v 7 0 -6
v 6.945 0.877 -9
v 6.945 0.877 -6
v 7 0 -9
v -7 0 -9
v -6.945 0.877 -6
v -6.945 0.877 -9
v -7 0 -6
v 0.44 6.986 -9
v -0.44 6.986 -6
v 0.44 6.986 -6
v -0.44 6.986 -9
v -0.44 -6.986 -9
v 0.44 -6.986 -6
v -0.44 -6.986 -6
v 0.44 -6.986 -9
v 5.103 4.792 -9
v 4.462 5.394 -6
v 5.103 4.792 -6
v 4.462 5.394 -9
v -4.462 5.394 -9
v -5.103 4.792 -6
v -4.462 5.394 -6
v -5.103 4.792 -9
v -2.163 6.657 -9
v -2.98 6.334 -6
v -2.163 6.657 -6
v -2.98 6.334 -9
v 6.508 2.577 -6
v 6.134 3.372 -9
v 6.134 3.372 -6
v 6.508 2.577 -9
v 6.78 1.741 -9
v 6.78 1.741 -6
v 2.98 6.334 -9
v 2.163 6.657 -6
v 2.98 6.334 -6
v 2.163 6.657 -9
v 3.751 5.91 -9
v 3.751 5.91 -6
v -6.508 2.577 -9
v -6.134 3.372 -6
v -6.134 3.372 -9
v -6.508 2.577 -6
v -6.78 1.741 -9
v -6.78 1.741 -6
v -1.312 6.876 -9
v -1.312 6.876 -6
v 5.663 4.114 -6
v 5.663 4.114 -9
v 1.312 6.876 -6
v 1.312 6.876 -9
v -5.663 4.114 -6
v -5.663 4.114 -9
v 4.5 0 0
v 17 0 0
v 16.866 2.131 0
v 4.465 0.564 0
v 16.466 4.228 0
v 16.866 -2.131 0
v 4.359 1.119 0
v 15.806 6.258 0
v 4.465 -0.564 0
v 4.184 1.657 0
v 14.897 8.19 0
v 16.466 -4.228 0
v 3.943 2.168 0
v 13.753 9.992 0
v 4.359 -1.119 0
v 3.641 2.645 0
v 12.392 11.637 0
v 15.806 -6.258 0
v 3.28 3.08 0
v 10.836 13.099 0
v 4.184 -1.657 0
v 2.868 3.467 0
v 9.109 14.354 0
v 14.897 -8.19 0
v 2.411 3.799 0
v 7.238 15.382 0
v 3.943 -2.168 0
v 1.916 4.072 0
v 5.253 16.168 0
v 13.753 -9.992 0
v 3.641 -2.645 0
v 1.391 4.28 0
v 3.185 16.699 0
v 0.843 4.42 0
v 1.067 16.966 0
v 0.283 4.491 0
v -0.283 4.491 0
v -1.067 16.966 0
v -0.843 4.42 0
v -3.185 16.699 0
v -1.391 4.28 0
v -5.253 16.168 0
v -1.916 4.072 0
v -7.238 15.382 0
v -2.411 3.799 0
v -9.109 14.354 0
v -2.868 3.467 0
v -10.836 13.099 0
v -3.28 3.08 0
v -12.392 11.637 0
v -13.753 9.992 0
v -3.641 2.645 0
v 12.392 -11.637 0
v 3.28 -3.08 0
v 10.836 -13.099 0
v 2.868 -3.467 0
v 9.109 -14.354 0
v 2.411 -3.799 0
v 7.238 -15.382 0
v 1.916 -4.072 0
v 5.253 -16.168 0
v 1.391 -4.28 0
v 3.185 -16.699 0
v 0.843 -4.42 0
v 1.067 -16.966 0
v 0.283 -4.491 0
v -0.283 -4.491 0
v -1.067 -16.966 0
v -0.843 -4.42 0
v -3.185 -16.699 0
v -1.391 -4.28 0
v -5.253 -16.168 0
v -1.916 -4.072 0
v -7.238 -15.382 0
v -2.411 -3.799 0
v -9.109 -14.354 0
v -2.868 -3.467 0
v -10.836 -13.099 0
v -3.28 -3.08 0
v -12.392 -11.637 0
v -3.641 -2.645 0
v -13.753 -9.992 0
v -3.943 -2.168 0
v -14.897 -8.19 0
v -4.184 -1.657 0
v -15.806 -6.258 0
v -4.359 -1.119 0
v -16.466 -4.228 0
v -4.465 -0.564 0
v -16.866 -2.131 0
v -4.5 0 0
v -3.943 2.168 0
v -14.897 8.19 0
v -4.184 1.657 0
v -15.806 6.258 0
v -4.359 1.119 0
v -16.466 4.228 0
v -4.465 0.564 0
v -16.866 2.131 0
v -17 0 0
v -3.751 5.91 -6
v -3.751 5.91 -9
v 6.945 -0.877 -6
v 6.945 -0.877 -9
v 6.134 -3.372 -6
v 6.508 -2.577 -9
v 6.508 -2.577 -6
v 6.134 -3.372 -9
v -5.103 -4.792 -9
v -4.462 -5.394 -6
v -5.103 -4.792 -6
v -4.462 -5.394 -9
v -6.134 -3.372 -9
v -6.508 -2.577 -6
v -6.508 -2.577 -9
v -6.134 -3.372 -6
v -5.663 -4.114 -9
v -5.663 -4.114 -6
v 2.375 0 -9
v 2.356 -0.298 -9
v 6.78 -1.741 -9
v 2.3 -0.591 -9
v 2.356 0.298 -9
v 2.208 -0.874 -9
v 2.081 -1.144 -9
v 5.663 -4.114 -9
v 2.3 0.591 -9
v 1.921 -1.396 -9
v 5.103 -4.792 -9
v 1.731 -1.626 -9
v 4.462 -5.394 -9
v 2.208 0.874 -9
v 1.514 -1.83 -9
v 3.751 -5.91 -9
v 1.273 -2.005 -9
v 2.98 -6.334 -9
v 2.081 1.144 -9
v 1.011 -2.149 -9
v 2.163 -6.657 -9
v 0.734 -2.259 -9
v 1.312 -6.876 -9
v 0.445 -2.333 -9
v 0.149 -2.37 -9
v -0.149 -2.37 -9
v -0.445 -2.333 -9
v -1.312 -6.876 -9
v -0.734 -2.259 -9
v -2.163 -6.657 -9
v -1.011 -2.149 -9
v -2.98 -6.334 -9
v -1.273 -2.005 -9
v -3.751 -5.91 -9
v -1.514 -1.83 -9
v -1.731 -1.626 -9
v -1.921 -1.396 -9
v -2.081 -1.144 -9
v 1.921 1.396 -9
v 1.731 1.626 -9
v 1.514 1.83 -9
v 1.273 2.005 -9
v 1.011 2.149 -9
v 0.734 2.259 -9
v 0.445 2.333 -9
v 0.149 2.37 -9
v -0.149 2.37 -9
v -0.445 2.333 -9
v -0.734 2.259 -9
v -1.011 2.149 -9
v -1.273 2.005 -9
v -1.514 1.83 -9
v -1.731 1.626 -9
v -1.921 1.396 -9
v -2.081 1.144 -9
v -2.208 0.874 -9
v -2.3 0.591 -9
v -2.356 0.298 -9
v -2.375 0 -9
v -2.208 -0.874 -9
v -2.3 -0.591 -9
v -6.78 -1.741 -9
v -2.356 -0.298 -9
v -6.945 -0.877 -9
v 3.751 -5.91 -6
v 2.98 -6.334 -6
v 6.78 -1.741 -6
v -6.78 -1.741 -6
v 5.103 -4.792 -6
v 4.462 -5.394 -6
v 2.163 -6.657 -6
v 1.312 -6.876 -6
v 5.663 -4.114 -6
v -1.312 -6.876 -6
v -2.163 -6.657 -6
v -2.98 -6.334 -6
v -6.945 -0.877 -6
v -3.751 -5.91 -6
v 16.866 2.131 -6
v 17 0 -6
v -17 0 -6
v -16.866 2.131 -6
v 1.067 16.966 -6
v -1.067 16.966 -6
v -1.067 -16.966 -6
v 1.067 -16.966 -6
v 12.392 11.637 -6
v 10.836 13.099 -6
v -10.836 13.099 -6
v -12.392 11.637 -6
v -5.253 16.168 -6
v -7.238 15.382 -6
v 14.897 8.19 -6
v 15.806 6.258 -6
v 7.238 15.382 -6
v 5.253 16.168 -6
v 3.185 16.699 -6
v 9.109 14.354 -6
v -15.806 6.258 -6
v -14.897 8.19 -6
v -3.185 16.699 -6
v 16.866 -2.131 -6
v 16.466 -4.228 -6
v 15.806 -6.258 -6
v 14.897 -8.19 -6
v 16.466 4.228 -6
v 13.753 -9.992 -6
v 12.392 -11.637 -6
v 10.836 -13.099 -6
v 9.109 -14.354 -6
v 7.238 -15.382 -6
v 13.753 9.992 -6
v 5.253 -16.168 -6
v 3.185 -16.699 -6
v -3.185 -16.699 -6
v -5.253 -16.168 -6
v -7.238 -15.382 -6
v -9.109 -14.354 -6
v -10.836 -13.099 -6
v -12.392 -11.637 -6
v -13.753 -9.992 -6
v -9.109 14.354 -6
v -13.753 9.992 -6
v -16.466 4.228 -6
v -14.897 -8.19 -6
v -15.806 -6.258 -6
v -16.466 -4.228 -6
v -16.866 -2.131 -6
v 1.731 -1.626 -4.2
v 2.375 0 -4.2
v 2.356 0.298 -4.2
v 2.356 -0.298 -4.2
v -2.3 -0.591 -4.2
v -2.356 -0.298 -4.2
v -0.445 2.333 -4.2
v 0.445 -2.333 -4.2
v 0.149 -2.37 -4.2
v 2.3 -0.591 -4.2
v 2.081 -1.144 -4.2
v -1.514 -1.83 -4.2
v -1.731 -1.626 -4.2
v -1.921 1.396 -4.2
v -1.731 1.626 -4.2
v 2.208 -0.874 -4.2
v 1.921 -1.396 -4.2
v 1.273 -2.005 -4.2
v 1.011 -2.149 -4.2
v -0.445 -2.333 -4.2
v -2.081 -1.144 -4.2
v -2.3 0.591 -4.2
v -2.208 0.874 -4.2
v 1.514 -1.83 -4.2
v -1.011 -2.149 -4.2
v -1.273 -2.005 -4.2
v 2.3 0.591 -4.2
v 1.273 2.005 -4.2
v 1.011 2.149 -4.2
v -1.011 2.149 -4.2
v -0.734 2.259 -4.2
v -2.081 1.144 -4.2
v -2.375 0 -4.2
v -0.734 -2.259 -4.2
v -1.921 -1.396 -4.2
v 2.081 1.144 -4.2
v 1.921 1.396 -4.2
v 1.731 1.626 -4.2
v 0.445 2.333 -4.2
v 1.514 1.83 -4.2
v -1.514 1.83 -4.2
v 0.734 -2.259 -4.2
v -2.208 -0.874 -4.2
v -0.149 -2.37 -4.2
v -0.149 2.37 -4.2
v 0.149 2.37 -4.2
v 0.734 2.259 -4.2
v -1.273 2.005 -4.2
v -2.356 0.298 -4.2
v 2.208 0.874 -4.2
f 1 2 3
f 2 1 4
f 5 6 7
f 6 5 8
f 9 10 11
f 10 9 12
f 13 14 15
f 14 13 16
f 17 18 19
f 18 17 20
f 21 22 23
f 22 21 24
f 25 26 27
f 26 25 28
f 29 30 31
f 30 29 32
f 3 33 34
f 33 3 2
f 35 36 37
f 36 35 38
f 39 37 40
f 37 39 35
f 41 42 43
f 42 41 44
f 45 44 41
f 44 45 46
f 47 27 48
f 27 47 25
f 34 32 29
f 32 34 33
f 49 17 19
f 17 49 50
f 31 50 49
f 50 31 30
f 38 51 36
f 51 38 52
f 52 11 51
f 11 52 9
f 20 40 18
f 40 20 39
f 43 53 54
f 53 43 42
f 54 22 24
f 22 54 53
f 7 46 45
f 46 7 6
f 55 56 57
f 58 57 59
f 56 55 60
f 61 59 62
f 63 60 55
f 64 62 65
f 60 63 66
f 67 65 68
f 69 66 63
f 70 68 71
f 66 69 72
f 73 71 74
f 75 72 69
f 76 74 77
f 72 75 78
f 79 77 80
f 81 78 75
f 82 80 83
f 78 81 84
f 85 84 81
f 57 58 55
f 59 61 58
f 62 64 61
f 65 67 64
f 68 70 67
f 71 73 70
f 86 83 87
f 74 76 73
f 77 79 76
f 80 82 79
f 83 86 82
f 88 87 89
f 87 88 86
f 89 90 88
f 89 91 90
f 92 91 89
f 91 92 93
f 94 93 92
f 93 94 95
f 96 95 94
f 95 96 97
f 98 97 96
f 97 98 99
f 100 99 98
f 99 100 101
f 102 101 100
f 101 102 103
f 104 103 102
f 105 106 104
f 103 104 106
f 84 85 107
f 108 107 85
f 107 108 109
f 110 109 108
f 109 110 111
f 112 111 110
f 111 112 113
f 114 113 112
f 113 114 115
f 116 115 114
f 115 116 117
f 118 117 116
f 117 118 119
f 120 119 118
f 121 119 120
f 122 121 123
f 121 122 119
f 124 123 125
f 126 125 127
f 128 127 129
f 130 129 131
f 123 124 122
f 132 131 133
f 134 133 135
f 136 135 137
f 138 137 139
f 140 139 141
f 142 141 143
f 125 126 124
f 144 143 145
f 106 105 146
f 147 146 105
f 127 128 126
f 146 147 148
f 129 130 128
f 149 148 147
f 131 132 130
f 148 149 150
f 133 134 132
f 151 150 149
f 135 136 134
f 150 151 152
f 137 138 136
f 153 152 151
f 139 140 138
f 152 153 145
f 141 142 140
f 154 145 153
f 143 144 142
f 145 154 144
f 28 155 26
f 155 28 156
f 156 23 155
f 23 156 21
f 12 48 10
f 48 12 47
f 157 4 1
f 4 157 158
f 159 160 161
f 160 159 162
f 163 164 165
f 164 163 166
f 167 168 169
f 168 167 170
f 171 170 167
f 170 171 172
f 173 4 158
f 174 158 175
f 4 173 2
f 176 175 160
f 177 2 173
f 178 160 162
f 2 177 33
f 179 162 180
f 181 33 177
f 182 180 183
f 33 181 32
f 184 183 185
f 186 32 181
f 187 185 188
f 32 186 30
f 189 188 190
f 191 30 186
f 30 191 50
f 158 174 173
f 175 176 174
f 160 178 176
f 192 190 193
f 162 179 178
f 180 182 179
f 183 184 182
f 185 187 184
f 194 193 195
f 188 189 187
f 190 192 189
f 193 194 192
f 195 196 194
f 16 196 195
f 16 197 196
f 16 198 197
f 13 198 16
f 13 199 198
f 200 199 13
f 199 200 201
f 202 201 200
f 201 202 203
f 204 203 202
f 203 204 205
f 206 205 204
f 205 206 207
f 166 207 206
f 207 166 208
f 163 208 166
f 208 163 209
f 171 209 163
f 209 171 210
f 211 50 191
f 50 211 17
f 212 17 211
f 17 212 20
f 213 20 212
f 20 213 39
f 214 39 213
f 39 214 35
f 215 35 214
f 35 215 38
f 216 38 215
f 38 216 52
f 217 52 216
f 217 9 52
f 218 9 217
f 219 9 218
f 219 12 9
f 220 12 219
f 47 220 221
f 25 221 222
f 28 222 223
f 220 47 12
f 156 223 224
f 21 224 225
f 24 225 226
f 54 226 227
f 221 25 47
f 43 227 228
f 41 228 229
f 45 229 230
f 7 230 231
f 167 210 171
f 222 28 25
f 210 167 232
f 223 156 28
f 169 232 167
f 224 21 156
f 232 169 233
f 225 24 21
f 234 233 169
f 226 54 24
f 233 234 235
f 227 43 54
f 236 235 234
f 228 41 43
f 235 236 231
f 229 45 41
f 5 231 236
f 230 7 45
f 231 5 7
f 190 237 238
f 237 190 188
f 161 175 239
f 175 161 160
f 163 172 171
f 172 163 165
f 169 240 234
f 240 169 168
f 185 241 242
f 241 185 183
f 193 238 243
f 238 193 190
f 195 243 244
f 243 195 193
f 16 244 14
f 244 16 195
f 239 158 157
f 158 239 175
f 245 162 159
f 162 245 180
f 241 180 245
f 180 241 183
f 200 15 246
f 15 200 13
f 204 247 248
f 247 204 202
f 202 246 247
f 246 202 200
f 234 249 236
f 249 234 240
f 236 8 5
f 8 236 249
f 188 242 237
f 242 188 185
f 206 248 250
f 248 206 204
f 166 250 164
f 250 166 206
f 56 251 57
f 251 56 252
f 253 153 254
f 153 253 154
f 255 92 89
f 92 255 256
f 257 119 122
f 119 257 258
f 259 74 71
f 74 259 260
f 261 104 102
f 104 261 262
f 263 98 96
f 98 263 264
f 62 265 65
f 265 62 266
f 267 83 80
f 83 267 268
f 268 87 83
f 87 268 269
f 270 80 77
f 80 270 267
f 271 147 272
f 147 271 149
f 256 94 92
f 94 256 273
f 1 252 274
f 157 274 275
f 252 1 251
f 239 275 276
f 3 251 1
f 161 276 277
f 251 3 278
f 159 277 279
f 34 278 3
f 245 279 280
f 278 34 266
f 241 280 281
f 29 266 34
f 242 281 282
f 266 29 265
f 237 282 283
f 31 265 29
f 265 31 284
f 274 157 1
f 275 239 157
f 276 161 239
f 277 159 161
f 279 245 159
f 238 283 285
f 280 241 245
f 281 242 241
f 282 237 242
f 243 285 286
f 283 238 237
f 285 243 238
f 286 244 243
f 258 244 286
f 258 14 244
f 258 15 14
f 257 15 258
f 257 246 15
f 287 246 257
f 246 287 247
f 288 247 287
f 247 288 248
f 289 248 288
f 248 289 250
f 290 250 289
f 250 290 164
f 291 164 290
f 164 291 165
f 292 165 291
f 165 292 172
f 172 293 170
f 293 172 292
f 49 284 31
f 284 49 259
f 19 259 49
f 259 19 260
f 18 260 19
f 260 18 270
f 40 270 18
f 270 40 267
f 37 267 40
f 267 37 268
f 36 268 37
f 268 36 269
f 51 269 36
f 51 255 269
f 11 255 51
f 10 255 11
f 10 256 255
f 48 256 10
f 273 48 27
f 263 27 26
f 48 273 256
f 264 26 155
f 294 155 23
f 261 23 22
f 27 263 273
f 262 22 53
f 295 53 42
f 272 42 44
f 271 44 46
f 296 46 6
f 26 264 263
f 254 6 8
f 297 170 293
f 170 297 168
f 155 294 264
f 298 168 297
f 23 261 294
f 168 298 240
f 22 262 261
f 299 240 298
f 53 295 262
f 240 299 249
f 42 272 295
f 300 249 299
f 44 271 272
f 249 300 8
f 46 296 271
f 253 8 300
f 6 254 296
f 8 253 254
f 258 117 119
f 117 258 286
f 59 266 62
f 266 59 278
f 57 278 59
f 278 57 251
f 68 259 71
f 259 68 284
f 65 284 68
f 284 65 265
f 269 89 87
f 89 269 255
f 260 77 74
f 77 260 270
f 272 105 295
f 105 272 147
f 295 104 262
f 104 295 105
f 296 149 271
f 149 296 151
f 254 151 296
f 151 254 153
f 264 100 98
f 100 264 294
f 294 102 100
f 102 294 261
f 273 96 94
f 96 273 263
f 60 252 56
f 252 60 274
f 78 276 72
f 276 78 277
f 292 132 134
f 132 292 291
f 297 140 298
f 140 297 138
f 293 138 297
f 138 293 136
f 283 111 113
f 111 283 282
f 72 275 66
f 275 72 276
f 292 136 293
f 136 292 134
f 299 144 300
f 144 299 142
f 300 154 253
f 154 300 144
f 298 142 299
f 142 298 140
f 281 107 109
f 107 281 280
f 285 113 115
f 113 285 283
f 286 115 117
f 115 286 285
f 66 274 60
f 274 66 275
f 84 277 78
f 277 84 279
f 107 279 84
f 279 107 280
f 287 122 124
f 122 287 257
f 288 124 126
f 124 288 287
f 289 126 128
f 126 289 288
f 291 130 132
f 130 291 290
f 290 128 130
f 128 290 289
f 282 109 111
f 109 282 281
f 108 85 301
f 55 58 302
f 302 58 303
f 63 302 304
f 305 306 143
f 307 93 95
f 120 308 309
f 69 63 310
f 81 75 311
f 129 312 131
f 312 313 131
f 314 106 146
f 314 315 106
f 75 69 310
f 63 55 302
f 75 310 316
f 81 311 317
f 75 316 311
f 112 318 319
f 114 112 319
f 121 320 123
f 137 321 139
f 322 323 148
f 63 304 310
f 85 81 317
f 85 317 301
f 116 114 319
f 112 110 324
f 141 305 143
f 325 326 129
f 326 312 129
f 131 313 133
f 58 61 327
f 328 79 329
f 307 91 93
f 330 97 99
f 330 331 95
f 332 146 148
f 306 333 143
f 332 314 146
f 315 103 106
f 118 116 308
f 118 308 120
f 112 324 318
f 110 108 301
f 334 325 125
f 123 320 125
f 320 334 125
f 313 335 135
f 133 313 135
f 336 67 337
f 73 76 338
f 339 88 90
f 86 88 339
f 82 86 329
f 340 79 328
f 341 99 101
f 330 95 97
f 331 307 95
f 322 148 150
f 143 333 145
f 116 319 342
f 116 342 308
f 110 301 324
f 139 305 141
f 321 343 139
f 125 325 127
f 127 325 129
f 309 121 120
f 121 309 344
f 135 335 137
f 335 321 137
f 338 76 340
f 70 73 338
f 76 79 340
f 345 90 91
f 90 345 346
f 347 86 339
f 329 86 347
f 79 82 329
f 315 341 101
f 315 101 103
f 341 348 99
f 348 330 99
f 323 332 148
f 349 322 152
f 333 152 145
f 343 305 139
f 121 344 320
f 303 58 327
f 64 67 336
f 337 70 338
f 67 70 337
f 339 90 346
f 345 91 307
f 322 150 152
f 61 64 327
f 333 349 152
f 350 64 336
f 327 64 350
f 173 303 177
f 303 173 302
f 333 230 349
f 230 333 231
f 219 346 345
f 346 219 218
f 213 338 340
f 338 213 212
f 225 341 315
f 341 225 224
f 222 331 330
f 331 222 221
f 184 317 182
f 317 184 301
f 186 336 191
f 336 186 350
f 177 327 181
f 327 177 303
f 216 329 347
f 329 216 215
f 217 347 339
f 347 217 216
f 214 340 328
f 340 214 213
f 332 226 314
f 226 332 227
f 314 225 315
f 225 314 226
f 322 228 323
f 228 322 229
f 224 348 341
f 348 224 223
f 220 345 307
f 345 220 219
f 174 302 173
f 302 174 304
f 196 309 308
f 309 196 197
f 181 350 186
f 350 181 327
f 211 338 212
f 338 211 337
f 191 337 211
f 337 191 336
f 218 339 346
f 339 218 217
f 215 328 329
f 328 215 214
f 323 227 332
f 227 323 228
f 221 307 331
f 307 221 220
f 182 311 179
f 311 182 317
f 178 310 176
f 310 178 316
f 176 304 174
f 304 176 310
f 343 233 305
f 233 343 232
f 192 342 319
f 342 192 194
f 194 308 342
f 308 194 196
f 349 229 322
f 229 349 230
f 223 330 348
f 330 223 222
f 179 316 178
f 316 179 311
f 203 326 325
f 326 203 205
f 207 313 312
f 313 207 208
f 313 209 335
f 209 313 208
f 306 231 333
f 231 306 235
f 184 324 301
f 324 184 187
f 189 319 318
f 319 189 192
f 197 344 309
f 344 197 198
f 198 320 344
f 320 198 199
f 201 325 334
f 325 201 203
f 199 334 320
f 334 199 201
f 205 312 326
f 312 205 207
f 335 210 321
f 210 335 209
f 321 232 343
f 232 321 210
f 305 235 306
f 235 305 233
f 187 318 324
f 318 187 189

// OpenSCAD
$fn = 50;


difference() {
	union() {
		translate(v = [0, 0, -9.0000000000]) {
			cylinder(h = 9, r = 7.0000000000);
		}
		translate(v = [0, 0, -6.0000000000]) {
			cylinder(h = 6, r = 17.0000000000);
		}
	}
	union() {
		translate(v = [0, 0, 0]) {
			rotate(a = [0, 0, 0]) {
				difference() {
					union() {
						#translate(v = [0, 0, -9.0000000000]) {
							cylinder(h = 9, r = 2.2500000000);
						}
						#translate(v = [0, 0, -4.2000000000]) {
							cylinder(h = 4.2000000000, r = 7.0000000000, r1 = 2.3750000000, r2 = 4.5000000000);
						}
						#translate(v = [0, 0, -9.0000000000]) {
							cylinder(h = 9, r = 2.3750000000);
						}
						#translate(v = [0, 0, -9.0000000000]) {
							cylinder(h = 9, r = 2.2500000000);
						}
					}
					union();
				}
			}
		}
	}
}
